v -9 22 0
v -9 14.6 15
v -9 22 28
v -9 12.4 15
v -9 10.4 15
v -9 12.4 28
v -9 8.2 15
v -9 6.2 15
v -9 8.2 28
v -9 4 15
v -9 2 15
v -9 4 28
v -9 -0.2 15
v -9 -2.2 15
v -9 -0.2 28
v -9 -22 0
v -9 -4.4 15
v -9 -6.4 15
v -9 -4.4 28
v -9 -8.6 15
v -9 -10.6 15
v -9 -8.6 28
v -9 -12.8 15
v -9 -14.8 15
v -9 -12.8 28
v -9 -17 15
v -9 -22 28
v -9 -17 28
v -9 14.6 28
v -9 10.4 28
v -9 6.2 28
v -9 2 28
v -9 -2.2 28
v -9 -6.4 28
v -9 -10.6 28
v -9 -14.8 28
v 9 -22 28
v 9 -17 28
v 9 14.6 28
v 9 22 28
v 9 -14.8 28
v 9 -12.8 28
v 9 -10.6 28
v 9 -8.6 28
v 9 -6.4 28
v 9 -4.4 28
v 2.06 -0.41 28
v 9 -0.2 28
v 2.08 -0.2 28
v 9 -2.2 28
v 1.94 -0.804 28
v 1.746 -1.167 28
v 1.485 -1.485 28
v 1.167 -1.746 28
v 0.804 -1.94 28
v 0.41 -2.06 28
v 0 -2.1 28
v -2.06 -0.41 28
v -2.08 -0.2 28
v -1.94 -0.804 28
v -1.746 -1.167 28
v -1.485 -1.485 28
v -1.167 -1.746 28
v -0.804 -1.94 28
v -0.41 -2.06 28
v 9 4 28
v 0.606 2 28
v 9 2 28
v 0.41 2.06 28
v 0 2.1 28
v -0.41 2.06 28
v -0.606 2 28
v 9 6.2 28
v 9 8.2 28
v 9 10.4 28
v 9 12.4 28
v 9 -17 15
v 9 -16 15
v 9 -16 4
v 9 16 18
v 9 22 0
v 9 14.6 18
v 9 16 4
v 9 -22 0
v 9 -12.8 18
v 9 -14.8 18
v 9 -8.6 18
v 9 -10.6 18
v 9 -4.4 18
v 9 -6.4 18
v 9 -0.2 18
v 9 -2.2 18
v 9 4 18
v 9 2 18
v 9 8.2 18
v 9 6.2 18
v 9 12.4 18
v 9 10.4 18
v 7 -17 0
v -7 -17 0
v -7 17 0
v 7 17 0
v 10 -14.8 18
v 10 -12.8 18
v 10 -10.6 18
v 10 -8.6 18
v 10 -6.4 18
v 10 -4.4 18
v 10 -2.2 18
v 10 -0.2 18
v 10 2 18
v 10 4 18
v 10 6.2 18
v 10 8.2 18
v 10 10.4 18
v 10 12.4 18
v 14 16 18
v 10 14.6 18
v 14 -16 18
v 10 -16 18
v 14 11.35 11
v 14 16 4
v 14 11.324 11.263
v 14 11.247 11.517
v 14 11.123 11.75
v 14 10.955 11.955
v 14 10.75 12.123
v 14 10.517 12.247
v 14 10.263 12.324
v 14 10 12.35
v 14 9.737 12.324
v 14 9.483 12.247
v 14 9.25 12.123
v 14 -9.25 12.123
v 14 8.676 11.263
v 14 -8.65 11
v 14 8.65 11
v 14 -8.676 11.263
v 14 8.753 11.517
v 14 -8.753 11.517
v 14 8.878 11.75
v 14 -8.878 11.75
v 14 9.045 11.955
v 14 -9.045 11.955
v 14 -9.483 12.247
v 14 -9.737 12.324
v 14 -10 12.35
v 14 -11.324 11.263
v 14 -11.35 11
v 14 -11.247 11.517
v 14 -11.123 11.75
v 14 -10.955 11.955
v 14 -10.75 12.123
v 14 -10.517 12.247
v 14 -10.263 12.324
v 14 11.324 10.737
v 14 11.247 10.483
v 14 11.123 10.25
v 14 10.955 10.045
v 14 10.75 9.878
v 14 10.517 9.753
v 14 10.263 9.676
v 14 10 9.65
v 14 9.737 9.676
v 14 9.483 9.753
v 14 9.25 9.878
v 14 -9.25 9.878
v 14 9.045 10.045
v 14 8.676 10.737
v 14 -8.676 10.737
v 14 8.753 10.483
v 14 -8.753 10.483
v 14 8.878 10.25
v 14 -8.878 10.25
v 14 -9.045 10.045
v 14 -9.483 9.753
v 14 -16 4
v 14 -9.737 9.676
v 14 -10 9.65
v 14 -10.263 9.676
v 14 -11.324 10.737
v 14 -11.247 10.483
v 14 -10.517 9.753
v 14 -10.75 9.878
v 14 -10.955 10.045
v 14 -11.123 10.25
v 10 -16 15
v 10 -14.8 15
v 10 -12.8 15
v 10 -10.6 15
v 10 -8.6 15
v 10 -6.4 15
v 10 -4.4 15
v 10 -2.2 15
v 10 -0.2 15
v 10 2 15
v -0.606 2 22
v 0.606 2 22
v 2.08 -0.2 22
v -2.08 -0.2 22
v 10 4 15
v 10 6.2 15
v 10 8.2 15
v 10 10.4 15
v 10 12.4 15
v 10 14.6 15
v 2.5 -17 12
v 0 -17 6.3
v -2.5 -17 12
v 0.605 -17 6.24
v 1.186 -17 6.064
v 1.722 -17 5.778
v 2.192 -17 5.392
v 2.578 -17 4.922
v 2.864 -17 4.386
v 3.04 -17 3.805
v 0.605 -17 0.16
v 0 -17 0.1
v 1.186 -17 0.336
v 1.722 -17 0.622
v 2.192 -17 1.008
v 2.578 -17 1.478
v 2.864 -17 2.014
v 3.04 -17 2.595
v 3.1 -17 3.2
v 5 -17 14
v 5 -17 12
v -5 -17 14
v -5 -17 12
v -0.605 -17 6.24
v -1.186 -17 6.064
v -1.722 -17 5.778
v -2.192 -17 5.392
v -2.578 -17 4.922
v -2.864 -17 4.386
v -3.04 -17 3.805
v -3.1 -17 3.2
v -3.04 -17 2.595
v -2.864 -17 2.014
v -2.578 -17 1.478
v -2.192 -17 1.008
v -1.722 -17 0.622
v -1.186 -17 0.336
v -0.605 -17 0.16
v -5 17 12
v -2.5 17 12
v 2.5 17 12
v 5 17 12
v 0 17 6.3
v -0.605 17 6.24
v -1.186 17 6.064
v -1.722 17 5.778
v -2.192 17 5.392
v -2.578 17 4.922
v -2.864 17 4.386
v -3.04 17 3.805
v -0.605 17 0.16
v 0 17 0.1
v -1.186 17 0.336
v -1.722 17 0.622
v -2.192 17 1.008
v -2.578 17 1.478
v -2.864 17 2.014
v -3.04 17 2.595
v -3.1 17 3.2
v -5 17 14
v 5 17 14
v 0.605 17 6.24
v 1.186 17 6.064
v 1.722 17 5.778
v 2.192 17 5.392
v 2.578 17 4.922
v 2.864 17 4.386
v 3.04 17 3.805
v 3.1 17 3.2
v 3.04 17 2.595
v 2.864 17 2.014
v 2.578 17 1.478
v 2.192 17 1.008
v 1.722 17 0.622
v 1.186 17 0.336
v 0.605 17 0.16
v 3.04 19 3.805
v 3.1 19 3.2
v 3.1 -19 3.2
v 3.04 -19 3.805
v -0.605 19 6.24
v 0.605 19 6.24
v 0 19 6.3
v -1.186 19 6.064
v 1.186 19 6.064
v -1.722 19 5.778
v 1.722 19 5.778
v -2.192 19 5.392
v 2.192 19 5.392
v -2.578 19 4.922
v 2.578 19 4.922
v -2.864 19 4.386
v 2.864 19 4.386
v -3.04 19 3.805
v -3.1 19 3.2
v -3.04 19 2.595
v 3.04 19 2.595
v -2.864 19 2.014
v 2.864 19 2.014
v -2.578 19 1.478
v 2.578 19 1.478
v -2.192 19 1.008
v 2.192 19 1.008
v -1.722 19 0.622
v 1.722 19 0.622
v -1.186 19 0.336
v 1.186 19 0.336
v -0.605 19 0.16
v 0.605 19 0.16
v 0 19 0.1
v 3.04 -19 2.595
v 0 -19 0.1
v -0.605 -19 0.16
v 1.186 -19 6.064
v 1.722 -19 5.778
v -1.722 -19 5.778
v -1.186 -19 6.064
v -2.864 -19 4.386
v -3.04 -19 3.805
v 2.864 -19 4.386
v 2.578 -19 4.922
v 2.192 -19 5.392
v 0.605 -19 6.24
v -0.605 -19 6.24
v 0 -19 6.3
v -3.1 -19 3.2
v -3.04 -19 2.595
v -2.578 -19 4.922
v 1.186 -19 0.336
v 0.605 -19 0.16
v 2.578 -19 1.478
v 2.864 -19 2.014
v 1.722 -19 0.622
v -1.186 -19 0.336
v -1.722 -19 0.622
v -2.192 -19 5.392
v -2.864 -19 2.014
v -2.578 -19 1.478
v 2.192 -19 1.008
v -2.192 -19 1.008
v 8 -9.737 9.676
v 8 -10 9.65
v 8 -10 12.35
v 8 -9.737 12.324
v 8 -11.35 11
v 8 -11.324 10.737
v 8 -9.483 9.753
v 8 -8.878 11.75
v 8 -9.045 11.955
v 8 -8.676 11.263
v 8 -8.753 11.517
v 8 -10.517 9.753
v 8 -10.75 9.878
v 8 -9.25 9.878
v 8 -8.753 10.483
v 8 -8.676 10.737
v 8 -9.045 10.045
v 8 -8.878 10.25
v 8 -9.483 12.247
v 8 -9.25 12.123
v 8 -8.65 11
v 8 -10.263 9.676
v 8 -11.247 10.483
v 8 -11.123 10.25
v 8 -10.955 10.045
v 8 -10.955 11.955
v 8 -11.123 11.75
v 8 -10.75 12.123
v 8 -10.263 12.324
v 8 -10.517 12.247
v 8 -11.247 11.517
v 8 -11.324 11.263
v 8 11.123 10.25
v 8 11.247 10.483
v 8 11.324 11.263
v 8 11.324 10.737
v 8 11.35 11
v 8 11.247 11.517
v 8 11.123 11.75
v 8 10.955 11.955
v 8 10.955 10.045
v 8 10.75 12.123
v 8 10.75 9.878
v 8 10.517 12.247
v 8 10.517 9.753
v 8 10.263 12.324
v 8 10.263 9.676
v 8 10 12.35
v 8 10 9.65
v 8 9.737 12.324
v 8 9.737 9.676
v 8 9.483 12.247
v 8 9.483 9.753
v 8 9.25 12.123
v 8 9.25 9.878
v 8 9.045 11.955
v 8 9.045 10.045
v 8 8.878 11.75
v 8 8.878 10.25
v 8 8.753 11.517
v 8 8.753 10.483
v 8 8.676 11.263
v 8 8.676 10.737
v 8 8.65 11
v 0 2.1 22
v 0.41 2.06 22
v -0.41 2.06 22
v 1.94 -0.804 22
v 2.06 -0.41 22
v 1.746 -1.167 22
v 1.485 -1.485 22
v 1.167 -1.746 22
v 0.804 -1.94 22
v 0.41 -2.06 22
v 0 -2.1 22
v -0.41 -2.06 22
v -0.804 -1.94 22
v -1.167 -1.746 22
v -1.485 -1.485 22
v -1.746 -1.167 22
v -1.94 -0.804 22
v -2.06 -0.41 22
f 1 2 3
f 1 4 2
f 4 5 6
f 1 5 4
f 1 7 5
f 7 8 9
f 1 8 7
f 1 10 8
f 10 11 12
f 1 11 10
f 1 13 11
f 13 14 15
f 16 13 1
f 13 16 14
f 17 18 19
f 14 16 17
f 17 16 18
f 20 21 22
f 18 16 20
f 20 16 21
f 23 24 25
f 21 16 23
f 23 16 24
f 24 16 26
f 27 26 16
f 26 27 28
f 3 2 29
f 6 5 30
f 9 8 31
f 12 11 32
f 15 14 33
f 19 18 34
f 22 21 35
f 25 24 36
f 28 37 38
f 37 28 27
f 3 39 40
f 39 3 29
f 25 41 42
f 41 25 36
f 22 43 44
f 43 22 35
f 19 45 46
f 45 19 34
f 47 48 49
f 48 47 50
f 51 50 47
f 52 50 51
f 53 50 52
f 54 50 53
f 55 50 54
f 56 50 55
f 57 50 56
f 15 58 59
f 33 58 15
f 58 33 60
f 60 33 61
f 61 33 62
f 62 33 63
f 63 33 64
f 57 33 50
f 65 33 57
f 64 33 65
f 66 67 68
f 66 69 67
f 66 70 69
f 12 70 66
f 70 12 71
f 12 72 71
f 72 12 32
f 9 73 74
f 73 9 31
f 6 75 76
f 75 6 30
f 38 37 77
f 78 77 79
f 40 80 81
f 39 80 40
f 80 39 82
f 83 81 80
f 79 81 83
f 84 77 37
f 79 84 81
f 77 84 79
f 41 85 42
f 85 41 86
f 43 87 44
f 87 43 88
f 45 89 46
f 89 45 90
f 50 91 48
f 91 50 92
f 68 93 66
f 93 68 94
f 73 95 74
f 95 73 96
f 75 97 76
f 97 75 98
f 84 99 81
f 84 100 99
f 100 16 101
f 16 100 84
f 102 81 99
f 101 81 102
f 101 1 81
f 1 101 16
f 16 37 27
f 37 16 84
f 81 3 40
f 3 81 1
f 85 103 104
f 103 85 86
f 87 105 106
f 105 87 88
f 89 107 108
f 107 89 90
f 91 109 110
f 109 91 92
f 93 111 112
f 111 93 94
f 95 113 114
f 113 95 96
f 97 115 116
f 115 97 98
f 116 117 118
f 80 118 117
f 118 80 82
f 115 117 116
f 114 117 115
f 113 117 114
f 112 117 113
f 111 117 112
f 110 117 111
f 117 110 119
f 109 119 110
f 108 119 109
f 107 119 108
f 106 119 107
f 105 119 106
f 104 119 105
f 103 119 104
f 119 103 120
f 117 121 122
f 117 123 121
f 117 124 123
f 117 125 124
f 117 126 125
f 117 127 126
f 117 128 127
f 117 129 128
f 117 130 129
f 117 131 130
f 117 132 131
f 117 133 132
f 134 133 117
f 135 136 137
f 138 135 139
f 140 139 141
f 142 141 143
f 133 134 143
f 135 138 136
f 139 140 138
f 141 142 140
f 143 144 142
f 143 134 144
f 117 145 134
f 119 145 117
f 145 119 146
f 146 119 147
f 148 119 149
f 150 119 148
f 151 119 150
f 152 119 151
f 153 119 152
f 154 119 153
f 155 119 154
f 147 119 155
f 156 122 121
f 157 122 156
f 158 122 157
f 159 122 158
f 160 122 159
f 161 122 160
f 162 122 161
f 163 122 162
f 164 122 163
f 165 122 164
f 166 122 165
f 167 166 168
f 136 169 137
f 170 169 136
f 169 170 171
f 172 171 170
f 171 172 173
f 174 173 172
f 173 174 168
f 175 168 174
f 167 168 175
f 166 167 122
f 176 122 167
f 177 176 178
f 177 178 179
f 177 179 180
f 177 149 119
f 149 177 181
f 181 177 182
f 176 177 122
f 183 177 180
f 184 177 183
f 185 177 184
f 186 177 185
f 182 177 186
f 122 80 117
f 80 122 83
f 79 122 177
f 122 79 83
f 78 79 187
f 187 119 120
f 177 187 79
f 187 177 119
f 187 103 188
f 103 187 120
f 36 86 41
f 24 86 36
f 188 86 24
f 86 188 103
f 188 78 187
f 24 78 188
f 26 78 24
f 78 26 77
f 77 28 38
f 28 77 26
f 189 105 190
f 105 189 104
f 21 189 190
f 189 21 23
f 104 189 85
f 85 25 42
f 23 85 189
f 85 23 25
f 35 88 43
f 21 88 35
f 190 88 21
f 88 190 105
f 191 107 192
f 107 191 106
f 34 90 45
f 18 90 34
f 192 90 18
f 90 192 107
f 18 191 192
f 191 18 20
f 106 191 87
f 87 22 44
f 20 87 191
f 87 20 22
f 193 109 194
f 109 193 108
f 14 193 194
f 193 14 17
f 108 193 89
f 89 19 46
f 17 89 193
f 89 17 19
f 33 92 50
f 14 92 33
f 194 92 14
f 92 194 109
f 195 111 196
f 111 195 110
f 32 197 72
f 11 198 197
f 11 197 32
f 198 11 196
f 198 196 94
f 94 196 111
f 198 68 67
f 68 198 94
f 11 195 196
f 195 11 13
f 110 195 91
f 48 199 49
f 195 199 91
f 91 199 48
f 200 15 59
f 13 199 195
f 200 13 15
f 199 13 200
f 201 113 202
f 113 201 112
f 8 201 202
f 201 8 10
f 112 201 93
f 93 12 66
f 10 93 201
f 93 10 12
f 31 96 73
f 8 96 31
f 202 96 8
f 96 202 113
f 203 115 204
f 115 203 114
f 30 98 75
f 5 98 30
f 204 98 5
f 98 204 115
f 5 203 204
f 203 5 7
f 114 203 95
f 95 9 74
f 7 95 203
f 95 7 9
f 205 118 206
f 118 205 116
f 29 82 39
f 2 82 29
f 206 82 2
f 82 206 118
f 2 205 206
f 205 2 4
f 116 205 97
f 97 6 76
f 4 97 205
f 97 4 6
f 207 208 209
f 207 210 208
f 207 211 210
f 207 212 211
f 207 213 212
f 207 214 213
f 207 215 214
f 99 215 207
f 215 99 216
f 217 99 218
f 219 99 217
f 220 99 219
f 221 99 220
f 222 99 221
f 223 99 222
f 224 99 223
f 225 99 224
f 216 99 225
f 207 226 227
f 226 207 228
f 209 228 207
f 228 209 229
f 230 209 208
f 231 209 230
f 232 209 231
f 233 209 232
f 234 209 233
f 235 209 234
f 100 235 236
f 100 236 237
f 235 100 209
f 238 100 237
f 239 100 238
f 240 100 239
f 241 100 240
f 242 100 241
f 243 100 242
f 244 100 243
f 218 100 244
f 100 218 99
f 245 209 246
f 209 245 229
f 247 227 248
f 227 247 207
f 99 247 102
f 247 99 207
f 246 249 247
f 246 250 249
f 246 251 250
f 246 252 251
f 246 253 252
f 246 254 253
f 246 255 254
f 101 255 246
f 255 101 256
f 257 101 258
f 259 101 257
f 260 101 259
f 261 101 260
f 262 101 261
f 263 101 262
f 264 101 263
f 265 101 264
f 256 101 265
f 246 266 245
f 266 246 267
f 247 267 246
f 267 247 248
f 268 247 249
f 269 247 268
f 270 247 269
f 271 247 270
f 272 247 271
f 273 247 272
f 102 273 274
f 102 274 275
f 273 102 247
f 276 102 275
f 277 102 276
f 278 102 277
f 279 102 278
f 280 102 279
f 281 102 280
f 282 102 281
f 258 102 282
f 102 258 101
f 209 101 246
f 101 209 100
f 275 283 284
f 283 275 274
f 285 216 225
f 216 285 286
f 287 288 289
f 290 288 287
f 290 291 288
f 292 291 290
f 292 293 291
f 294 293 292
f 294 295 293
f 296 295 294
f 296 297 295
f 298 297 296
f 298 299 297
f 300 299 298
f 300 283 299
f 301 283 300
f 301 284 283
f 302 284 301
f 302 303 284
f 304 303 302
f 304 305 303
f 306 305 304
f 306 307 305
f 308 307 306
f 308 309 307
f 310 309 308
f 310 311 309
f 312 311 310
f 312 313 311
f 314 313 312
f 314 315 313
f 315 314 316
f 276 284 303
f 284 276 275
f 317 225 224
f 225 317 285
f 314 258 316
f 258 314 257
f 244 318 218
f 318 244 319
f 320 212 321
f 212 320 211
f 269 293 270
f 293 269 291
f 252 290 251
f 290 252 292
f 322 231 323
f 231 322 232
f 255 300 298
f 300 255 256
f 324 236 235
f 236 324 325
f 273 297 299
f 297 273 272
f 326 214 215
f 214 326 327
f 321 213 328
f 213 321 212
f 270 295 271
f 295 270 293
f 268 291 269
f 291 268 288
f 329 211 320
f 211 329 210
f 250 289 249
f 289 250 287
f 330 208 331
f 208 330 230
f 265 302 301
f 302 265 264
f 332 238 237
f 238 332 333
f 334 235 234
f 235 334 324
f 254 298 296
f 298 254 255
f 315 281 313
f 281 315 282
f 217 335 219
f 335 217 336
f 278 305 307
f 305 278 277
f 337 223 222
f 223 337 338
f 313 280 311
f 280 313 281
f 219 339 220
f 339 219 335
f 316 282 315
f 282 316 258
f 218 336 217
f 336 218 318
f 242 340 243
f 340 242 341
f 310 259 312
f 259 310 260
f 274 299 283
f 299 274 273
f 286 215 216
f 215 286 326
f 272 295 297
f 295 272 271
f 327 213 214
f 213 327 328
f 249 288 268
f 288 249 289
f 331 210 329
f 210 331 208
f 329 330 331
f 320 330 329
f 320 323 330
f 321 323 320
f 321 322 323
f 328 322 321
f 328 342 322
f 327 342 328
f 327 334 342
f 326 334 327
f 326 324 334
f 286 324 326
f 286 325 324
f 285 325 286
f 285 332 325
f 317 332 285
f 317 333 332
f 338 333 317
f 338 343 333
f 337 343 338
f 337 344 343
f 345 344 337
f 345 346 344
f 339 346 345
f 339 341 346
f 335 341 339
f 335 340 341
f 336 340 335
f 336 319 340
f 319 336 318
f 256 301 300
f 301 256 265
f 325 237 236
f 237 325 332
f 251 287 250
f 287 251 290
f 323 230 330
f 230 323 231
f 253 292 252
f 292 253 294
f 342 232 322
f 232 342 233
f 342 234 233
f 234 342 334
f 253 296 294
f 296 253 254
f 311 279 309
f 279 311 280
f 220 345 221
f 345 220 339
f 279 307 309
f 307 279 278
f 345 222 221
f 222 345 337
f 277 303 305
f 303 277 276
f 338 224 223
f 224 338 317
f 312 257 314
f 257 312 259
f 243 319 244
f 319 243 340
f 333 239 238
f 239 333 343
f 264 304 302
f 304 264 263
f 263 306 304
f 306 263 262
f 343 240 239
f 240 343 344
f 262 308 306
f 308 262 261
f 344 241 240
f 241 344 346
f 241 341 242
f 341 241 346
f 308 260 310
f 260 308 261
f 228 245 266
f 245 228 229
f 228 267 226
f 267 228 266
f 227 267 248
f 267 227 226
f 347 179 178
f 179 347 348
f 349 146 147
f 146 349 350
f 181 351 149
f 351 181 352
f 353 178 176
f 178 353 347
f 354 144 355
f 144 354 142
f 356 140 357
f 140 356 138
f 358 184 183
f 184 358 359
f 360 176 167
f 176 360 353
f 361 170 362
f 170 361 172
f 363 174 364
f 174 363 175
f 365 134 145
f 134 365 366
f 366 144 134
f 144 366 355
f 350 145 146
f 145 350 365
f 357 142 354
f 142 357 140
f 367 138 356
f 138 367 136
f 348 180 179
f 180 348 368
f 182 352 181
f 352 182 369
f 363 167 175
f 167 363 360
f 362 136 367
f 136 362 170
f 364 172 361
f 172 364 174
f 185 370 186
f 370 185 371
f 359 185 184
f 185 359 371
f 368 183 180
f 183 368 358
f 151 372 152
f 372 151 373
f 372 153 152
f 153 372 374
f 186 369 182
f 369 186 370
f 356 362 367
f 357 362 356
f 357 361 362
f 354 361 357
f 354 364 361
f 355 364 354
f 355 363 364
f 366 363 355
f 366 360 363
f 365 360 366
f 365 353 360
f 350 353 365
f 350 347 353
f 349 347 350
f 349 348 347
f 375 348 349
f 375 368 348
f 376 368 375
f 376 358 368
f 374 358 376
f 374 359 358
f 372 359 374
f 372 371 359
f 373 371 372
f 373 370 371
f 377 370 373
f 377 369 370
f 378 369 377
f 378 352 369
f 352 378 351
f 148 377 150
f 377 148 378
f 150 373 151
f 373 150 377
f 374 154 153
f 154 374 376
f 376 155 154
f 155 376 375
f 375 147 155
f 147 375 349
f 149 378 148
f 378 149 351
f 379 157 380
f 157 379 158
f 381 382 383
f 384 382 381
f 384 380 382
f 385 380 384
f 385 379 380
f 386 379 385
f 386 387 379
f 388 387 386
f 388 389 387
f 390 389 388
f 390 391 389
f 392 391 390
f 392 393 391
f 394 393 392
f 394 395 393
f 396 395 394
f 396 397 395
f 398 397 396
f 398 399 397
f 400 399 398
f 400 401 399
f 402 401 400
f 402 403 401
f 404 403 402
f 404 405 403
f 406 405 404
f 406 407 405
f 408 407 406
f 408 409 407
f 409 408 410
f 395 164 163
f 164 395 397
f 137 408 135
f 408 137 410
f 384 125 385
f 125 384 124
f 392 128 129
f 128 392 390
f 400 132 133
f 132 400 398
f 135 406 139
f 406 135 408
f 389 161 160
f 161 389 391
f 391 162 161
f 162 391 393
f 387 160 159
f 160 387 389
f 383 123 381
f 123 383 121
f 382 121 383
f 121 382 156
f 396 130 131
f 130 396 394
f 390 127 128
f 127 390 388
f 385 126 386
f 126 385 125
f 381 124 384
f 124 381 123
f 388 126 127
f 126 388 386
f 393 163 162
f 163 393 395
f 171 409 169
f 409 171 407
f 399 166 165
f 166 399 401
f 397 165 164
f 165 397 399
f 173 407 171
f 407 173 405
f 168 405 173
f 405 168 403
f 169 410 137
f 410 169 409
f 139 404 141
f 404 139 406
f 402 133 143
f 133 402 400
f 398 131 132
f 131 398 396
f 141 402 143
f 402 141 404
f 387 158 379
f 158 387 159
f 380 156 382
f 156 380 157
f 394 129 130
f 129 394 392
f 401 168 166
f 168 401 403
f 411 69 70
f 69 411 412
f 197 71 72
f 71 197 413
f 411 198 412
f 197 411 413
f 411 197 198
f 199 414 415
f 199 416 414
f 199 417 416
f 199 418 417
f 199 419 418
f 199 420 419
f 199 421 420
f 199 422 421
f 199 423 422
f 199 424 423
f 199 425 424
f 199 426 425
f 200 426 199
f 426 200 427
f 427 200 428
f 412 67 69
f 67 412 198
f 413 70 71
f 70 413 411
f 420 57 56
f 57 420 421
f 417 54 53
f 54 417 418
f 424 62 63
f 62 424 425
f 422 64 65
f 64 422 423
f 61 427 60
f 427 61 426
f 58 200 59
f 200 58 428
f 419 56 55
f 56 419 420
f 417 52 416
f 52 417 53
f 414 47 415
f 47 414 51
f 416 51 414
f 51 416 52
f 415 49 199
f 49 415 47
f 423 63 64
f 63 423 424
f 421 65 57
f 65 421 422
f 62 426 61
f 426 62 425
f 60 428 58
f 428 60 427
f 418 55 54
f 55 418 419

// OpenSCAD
// PROJECT W.A.L.L. - HYPER-ACTUATOR Mk-1: Dual In-Situ 395nm UV-LED Pinning Wing
// Drawing Ref: DWG-WALL-HACT-004 | Material: AL6063 High Thermal Conductivity Aluminum
// Houses Nichia/Seoul 395nm UV LED MCPCB, fused quartz cylindrical rod lens,
// and 8 precision CNC convective cooling heatsink fins.
// Complies with ISO 2768-mK tolerances | Designed for CNC Milling / Extrusion

$fn = 32;

module uv_pinning_wing(
    wing_w = 18.0,
    wing_l = 44.0,
    wing_h = 28.0,
    num_fins = 8
) {
    difference() {
        union() {
            // Main Radiator Body
            translate([-wing_w/2, -wing_l/2, 0])
                cube([wing_w, wing_l, wing_h]);

            // Side Flange Attachment Lug with M2.5 Counterbores
            translate([wing_w/2, -wing_l/2 + 6.0, 4.0])
                cube([5.0, wing_l - 12.0, 14.0]);
        }

        // 1. Precision Parabolic Optical Reflector Cavity
        translate([0, 0, -0.1]) {
            hull() {
                translate([-wing_w/2 + 2.0, -17.0, 0]) cube([wing_w - 4.0, 34.0, 0.1]);
                translate([-2.5, -17.0, 12.0]) cube([5.0, 34.0, 0.1]);
            }
        }

        // 2. Fused Quartz 6mm Cylindrical Rod Lens Bezel Groove
        translate([0, 0, 3.2])
            rotate([90, 0, 0])
                cylinder(d=6.2, h=38.0, center=true);

        // 3. Nichia/Seoul 395nm UV-LED Aluminum Core MCPCB Pocket
        translate([-5.0, -17.0, 12.0])
            cube([10.0, 34.0, 2.0]);

        // 4. Real Deep Heatsink Convective Cooling Fins (1.0mm fin, 2.0mm air gap)
        for (i = [0:num_fins-1]) {
            fy = -wing_l/2 + 5.0 + i * 4.2;
            translate([-wing_w/2 - 1.0, fy, 15.0])
                cube([wing_w + 2.0, 2.2, wing_h - 13.0]);
        }

        // 5. 2x M2.5 Fastener Holes for Attachment to Active Carriage
        translate([wing_w/2 - 1.0, -10.0, 11.0]) rotate([0, 90, 0]) cylinder(d=2.7, h=8.0);
        translate([wing_w/2 - 1.0,  10.0, 11.0]) rotate([0, 90, 0]) cylinder(d=2.7, h=8.0);

        // 6. Thermal Interface Electrical Harness Pass-Through
        translate([0, 0, wing_h - 6.0])
            cylinder(d=4.2, h=8.0);
    }
}

// Standalone render
color([0.48, 0.52, 0.58])
    uv_pinning_wing();
